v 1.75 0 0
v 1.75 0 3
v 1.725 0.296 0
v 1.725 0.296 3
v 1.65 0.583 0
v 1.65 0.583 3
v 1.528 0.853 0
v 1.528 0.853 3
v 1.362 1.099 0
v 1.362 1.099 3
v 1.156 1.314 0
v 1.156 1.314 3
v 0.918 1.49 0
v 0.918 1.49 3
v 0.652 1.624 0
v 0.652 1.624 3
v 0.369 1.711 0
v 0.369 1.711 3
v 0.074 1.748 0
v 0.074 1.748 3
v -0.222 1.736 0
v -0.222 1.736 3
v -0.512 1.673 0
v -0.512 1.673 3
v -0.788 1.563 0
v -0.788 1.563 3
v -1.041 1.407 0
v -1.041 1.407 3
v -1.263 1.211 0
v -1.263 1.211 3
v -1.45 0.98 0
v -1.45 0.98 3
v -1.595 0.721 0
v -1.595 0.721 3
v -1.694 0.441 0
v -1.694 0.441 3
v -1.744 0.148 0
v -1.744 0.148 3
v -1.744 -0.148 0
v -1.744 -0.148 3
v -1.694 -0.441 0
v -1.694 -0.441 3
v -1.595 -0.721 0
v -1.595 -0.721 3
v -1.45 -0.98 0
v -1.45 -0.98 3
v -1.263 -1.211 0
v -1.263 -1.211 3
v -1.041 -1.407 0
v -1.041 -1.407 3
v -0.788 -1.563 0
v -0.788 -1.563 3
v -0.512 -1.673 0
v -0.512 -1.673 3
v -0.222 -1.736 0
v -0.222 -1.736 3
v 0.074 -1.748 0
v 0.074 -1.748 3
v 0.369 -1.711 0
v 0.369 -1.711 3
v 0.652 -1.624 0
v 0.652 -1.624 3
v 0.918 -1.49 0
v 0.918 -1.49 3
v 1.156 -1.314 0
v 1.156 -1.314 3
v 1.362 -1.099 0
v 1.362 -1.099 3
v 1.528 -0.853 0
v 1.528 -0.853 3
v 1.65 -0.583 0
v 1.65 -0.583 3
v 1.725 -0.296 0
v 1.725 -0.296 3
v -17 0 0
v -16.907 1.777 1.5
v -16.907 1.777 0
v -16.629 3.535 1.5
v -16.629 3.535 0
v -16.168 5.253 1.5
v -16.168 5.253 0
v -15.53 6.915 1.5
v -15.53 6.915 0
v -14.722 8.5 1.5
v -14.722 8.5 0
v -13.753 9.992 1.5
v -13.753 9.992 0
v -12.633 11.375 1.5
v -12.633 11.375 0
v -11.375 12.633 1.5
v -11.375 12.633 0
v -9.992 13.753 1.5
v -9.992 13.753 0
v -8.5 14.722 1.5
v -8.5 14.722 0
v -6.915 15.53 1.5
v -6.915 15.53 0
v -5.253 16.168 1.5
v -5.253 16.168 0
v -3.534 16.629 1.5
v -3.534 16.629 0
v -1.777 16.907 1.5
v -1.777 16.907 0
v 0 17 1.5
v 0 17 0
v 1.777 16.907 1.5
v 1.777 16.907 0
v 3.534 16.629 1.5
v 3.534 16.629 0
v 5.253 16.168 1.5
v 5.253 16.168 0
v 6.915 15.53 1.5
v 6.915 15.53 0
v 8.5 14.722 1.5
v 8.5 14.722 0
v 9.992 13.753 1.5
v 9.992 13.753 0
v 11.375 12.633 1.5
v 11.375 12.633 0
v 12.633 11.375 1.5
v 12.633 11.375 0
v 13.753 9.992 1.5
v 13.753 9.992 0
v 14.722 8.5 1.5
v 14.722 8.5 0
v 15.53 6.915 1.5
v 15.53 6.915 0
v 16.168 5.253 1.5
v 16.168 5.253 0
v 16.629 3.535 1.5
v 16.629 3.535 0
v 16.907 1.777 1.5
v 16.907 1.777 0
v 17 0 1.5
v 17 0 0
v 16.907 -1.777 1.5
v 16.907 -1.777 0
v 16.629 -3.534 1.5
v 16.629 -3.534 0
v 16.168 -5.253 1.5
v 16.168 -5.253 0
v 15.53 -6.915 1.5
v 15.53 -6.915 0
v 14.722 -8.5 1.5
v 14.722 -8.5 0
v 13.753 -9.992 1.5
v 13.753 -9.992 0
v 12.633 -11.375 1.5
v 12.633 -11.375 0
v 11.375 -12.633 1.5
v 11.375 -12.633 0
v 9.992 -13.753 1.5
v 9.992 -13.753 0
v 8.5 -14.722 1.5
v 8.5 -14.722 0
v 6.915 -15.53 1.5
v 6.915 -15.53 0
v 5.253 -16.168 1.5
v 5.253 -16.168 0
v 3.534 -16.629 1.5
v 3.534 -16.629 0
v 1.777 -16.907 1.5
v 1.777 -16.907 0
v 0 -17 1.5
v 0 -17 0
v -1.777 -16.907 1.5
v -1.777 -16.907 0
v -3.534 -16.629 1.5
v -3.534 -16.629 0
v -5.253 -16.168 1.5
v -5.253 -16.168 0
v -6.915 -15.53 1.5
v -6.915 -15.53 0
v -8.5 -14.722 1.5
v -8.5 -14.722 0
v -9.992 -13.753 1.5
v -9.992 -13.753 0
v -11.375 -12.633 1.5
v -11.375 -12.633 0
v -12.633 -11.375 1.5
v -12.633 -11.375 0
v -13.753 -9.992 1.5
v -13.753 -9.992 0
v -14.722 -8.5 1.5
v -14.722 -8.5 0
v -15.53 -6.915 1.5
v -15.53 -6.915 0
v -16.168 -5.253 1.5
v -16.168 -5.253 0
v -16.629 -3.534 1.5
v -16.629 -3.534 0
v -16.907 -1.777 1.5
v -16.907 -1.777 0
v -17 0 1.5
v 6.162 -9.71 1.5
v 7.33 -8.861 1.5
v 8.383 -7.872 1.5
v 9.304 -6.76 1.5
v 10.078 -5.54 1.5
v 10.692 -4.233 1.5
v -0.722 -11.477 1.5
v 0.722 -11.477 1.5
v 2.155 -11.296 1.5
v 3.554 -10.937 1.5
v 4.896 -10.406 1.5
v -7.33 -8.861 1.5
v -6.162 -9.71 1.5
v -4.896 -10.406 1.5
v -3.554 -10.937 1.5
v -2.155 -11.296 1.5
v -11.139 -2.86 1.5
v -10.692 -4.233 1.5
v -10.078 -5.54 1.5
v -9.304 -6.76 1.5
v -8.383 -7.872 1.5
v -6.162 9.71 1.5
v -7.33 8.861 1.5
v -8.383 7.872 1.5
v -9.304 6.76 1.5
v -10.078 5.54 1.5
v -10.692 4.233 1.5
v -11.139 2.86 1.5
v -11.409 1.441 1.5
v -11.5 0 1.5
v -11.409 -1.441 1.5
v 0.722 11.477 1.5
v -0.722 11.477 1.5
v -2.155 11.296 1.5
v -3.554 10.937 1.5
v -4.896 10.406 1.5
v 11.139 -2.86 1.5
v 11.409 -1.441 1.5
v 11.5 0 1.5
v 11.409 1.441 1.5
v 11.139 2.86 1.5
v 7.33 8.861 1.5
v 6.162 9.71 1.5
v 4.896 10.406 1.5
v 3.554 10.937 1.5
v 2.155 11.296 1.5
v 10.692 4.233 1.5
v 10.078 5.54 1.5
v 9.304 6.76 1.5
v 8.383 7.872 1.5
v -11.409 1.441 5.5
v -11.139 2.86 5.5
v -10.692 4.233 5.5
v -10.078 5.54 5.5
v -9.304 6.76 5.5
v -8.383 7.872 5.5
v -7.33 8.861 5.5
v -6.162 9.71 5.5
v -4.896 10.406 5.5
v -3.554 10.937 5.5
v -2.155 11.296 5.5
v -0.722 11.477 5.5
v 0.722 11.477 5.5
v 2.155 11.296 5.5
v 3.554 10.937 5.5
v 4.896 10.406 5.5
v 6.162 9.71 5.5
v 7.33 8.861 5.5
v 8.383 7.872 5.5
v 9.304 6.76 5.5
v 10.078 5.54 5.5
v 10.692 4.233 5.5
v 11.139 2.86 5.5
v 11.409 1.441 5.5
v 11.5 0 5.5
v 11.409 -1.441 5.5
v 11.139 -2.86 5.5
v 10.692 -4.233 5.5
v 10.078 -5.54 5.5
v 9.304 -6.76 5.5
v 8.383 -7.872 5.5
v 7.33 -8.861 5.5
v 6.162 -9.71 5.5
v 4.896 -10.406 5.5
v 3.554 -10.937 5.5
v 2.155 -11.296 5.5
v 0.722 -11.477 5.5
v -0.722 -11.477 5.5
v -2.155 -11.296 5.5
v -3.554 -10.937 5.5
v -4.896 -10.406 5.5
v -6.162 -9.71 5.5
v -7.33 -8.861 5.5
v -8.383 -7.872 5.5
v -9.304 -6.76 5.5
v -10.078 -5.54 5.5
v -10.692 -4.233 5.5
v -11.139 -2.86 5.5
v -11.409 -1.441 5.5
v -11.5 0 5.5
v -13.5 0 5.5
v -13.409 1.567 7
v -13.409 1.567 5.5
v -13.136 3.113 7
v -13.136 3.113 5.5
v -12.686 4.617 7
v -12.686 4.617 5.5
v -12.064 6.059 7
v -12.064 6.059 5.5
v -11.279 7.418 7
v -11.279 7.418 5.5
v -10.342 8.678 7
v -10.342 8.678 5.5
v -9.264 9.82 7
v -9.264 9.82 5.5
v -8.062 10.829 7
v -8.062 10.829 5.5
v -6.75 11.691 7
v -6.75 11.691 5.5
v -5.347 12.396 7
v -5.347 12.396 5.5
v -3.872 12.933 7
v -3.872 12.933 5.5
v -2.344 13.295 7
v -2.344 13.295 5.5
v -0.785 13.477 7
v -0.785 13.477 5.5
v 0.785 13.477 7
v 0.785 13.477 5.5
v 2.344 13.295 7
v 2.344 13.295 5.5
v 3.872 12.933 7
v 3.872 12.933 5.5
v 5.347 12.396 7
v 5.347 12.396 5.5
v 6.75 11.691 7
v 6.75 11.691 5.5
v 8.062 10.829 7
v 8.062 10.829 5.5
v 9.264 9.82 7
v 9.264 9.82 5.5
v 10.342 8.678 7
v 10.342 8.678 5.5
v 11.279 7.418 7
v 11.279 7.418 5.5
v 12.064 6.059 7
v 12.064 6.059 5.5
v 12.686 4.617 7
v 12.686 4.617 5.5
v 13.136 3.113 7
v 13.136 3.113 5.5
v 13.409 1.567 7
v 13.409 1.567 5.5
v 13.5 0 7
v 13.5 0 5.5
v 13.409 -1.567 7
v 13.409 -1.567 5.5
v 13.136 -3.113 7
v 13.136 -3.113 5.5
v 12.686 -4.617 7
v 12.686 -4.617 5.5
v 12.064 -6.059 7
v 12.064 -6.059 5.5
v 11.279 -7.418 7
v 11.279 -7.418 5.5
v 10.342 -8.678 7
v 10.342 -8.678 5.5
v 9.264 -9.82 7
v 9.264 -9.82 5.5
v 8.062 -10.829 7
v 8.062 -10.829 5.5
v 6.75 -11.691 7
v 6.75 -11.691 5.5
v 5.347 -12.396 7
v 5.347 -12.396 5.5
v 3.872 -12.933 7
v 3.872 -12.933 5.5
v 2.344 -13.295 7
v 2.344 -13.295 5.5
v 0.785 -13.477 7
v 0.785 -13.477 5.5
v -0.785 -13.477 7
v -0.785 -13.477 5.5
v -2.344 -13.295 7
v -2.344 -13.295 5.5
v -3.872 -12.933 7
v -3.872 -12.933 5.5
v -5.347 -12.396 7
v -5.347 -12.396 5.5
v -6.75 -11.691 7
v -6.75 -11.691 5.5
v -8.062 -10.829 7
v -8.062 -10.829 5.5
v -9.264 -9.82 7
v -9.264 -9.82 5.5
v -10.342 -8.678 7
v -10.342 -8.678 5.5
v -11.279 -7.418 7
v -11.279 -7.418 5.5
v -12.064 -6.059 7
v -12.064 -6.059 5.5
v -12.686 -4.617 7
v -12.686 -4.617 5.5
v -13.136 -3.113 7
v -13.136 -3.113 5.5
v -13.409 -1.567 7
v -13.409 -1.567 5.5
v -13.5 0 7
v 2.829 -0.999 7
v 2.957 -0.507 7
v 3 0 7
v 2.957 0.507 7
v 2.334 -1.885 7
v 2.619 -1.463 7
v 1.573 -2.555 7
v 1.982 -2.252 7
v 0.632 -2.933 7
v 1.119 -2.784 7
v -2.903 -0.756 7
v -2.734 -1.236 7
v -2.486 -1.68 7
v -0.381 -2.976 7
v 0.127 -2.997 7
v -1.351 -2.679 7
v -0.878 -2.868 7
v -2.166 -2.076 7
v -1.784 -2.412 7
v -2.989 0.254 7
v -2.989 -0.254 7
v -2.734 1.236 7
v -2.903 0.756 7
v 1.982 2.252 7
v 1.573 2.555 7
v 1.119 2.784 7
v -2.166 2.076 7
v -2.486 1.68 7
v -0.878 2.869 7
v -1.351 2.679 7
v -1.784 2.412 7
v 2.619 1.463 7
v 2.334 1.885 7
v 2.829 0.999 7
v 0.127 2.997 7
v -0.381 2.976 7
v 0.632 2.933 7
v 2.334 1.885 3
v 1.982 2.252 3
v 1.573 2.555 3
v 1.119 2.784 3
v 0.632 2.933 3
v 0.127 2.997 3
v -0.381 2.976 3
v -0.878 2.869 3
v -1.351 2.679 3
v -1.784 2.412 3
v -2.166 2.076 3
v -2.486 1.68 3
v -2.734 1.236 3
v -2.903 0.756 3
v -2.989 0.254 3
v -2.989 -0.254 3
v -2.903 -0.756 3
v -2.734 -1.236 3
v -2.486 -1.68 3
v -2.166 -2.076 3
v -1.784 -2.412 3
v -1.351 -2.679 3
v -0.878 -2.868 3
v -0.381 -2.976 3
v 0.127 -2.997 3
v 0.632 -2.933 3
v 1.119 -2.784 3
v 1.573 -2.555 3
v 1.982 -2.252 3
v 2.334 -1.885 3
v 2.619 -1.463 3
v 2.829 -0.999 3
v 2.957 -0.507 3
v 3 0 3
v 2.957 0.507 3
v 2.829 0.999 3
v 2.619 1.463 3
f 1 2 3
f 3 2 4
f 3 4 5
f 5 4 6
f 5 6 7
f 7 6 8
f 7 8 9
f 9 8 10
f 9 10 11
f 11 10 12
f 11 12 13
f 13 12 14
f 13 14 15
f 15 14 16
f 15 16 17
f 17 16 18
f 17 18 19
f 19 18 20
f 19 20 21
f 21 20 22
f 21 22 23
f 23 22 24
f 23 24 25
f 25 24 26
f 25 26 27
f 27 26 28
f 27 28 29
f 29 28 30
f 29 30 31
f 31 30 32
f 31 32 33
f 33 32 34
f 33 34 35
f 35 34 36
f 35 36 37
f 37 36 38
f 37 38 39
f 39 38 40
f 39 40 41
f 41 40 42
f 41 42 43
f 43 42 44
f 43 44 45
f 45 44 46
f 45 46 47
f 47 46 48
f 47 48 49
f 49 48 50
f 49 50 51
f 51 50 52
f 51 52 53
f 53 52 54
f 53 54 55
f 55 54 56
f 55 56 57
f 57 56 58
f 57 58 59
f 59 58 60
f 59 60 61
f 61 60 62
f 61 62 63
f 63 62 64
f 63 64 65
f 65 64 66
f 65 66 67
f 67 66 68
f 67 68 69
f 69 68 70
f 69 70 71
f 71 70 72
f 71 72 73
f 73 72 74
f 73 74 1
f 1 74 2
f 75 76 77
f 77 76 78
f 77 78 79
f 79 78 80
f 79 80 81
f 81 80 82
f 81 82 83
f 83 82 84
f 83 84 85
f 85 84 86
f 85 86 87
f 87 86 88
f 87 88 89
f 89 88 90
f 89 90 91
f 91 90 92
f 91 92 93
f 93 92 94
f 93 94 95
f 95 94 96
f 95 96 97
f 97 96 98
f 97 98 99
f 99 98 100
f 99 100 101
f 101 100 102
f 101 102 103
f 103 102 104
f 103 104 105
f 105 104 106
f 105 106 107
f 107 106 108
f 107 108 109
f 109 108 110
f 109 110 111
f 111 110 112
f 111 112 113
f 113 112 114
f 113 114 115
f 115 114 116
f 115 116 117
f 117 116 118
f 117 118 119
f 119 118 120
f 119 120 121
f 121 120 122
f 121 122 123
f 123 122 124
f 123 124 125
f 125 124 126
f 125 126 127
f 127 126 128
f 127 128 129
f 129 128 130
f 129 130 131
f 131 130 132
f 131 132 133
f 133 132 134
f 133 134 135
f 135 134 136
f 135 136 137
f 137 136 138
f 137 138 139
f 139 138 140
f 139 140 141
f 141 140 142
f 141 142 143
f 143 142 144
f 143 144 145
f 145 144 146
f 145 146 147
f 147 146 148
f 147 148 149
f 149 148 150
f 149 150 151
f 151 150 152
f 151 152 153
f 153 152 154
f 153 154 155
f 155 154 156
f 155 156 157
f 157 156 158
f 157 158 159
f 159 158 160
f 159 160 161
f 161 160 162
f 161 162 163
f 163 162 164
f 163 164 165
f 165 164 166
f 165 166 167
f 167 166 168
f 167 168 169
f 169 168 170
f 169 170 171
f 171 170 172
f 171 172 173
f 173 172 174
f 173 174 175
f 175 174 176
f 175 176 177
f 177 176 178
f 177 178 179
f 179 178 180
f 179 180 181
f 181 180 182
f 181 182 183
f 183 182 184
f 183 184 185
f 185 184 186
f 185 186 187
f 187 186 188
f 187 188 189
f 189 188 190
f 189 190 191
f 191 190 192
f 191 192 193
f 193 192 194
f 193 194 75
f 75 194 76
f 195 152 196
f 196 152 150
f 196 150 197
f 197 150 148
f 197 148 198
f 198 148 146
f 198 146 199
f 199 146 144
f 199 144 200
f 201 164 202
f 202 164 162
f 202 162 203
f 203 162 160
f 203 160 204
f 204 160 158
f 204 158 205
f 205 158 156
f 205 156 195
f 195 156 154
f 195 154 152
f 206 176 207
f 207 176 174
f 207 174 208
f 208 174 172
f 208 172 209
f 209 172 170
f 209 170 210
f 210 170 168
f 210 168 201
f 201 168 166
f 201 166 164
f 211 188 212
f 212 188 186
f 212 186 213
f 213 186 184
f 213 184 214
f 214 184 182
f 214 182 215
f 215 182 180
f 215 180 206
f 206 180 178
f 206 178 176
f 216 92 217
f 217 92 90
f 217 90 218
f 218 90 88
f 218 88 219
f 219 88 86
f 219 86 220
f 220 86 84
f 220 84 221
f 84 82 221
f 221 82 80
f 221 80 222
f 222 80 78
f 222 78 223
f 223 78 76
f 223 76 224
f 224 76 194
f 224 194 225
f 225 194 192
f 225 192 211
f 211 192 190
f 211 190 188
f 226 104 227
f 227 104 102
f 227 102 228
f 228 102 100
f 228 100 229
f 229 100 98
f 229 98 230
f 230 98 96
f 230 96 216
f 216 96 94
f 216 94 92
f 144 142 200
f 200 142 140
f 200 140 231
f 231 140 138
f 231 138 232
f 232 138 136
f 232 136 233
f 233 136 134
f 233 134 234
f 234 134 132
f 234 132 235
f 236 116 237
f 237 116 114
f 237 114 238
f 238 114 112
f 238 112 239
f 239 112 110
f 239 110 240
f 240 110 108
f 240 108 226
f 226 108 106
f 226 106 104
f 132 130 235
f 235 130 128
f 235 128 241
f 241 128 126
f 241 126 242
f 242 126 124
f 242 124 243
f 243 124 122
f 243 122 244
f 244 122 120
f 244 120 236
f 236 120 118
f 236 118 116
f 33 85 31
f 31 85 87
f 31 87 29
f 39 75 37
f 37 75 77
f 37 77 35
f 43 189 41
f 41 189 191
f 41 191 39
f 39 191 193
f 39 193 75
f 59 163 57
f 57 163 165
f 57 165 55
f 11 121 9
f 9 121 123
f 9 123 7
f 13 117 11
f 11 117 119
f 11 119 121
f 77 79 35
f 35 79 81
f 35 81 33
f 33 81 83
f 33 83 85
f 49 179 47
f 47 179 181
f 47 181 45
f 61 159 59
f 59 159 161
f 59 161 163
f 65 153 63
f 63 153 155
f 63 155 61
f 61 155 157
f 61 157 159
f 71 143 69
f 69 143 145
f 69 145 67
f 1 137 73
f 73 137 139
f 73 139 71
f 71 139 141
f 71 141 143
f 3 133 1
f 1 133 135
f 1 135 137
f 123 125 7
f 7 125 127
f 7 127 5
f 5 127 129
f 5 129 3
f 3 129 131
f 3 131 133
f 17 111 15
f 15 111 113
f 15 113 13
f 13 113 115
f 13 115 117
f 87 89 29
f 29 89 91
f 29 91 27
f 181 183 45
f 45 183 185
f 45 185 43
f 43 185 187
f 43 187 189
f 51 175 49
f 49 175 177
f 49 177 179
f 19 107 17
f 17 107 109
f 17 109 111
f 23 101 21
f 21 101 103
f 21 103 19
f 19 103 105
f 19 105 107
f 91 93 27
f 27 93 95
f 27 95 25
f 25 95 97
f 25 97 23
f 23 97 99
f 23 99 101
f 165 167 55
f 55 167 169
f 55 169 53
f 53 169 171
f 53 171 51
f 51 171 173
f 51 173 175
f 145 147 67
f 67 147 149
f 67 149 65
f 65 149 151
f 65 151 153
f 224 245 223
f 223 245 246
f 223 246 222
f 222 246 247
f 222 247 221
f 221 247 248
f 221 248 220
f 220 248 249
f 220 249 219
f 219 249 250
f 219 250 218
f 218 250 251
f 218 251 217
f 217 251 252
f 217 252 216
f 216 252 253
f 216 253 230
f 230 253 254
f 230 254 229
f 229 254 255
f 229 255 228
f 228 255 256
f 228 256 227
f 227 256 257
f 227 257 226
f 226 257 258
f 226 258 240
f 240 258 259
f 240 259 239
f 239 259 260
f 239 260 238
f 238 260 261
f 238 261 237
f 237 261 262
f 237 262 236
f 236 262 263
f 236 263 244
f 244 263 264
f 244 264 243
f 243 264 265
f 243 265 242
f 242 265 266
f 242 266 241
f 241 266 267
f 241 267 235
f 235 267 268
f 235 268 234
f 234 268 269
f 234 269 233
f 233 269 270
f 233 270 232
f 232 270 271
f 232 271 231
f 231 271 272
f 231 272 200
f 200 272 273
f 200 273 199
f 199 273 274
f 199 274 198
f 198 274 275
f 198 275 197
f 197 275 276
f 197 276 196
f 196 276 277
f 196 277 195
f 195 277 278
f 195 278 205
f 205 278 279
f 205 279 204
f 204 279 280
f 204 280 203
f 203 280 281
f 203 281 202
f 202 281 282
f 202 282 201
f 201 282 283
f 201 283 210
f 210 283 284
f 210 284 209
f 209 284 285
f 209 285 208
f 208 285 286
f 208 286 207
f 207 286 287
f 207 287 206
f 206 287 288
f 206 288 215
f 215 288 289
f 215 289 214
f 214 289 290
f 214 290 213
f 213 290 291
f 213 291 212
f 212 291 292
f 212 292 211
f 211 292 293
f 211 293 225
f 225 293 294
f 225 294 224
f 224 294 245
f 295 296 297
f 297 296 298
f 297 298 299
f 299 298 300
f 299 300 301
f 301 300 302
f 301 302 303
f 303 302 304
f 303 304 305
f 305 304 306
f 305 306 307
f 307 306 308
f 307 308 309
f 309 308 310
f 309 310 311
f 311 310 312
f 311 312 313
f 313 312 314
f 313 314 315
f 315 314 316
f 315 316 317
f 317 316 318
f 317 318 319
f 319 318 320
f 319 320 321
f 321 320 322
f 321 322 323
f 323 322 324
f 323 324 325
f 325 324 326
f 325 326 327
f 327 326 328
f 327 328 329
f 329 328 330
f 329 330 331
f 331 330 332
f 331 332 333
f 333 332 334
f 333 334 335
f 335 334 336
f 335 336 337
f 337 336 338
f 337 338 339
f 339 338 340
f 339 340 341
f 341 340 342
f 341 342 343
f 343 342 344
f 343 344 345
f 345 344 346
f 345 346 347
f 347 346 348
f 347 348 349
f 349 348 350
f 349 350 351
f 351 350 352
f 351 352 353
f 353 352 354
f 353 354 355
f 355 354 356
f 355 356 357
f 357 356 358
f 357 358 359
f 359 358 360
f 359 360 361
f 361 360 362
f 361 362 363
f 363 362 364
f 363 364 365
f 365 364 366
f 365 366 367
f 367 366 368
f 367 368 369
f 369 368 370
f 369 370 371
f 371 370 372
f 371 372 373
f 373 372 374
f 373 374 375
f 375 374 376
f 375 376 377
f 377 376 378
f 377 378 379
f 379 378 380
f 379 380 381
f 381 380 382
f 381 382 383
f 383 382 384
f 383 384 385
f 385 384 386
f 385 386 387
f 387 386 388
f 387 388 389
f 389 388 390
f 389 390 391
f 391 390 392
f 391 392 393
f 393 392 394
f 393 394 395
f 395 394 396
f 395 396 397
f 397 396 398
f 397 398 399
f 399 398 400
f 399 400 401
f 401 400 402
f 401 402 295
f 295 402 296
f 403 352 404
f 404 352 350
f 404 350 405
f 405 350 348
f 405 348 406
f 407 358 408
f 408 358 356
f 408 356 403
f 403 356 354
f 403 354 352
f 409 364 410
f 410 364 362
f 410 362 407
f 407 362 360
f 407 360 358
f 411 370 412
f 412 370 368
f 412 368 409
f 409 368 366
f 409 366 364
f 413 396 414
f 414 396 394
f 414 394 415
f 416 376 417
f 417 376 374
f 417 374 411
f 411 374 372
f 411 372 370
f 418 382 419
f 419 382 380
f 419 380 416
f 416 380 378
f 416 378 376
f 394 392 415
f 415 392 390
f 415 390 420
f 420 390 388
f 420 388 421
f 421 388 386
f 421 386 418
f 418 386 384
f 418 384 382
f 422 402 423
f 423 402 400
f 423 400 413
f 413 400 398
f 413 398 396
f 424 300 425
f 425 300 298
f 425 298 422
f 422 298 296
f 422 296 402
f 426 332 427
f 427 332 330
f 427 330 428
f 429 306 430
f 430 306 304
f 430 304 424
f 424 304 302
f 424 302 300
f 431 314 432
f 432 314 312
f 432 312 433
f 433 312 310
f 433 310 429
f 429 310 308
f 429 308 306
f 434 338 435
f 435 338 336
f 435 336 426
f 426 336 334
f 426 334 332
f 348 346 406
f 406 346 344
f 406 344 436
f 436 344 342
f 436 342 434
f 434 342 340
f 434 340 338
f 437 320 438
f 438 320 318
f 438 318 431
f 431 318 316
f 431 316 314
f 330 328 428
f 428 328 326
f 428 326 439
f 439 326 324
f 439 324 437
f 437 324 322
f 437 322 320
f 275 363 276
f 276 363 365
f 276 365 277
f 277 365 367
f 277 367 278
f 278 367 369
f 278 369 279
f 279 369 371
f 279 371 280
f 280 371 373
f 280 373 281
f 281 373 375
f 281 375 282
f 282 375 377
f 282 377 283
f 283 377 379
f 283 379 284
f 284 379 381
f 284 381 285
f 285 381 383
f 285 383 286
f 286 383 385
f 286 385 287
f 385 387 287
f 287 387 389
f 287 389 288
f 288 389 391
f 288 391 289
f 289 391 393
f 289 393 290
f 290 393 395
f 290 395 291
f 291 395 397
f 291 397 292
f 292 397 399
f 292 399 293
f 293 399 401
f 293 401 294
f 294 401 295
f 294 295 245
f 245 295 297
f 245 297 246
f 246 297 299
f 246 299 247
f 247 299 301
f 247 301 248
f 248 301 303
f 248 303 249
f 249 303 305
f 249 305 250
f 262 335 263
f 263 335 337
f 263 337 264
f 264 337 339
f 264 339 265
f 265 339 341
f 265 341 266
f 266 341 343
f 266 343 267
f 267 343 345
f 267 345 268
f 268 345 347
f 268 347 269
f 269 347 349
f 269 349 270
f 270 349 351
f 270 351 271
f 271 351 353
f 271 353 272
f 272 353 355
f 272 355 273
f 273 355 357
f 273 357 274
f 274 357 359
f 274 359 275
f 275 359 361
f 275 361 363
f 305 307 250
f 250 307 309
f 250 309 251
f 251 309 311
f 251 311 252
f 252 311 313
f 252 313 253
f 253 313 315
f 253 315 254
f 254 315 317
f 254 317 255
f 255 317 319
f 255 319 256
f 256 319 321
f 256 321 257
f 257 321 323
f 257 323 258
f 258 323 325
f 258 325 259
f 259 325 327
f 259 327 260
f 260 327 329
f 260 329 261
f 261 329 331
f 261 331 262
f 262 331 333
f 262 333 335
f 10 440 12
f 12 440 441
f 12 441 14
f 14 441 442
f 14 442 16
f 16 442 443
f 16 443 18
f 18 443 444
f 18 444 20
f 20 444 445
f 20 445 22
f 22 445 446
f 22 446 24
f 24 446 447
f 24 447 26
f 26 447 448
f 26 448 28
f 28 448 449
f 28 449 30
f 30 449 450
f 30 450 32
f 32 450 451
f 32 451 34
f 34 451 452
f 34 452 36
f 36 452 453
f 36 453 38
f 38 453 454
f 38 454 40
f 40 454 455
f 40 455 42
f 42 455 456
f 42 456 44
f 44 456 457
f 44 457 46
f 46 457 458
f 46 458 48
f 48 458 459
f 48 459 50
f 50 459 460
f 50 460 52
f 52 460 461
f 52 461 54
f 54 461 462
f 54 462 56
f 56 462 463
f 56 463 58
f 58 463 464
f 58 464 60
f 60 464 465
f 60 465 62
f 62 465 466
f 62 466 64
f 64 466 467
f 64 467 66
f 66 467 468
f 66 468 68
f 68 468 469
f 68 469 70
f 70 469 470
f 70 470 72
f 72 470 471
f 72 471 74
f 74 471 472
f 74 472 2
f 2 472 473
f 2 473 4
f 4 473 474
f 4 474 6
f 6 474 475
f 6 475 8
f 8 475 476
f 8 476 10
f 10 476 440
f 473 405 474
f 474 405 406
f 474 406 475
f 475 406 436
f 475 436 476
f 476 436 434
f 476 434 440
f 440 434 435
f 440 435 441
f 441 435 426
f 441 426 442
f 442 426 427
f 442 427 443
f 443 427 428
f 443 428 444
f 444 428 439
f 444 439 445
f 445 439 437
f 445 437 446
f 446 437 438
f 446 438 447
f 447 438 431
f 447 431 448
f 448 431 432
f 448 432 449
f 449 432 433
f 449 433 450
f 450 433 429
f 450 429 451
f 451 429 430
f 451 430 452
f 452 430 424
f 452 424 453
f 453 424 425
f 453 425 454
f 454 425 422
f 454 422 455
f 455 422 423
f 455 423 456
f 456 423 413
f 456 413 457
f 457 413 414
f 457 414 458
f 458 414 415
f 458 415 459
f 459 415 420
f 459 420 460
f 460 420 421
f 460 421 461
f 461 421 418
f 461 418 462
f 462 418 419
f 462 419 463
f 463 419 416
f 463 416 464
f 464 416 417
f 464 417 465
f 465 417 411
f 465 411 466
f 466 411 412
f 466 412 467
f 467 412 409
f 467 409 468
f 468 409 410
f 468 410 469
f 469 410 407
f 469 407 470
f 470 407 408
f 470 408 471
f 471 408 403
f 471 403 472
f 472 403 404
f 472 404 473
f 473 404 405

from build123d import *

# Parameters (mm, degrees)
SKETCH_2_R          = 17
EXTRUDE_1_DEPTH     = 1.5
SKETCH_3_R          = 11.5
EXTRUDE_2_DEPTH     = 4
SKETCH_4_R          = 13.5
EXTRUDE_3_DEPTH     = 1.5
SKETCH_5_R          = 1.75
CUT_EXTRUDE_1_DEPTH = 26.039968051
SKETCH_6_R          = 3
CUT_EXTRUDE_2_DEPTH = 4


with BuildPart() as part:
    # 草图2 → 凸台-拉伸1 (new body)
    with BuildSketch(Plane.XY):
        Circle(SKETCH_2_R)
    extrude(amount=EXTRUDE_1_DEPTH)

    # 草图3 → 凸台-拉伸2 (add)
    with BuildSketch(Plane.XY.offset(1.5)):
        Circle(SKETCH_3_R)
    extrude(amount=EXTRUDE_2_DEPTH)

    # 草图4 → 凸台-拉伸3 (add)
    with BuildSketch(Plane.XY.offset(5.5)):
        Circle(SKETCH_4_R)
    extrude(amount=EXTRUDE_3_DEPTH)

    # 草图5 → 切除-拉伸1 (cut, through all)
    with BuildSketch(Plane.XY.offset(7)):
        Circle(SKETCH_5_R)
    extrude(amount=-CUT_EXTRUDE_1_DEPTH, mode=Mode.SUBTRACT)

    # 草图6 → 切除-拉伸2 (cut)
    with BuildSketch(Plane.XY.offset(7)):
        Circle(SKETCH_6_R)
    extrude(amount=-CUT_EXTRUDE_2_DEPTH, mode=Mode.SUBTRACT)


solid = part.part
